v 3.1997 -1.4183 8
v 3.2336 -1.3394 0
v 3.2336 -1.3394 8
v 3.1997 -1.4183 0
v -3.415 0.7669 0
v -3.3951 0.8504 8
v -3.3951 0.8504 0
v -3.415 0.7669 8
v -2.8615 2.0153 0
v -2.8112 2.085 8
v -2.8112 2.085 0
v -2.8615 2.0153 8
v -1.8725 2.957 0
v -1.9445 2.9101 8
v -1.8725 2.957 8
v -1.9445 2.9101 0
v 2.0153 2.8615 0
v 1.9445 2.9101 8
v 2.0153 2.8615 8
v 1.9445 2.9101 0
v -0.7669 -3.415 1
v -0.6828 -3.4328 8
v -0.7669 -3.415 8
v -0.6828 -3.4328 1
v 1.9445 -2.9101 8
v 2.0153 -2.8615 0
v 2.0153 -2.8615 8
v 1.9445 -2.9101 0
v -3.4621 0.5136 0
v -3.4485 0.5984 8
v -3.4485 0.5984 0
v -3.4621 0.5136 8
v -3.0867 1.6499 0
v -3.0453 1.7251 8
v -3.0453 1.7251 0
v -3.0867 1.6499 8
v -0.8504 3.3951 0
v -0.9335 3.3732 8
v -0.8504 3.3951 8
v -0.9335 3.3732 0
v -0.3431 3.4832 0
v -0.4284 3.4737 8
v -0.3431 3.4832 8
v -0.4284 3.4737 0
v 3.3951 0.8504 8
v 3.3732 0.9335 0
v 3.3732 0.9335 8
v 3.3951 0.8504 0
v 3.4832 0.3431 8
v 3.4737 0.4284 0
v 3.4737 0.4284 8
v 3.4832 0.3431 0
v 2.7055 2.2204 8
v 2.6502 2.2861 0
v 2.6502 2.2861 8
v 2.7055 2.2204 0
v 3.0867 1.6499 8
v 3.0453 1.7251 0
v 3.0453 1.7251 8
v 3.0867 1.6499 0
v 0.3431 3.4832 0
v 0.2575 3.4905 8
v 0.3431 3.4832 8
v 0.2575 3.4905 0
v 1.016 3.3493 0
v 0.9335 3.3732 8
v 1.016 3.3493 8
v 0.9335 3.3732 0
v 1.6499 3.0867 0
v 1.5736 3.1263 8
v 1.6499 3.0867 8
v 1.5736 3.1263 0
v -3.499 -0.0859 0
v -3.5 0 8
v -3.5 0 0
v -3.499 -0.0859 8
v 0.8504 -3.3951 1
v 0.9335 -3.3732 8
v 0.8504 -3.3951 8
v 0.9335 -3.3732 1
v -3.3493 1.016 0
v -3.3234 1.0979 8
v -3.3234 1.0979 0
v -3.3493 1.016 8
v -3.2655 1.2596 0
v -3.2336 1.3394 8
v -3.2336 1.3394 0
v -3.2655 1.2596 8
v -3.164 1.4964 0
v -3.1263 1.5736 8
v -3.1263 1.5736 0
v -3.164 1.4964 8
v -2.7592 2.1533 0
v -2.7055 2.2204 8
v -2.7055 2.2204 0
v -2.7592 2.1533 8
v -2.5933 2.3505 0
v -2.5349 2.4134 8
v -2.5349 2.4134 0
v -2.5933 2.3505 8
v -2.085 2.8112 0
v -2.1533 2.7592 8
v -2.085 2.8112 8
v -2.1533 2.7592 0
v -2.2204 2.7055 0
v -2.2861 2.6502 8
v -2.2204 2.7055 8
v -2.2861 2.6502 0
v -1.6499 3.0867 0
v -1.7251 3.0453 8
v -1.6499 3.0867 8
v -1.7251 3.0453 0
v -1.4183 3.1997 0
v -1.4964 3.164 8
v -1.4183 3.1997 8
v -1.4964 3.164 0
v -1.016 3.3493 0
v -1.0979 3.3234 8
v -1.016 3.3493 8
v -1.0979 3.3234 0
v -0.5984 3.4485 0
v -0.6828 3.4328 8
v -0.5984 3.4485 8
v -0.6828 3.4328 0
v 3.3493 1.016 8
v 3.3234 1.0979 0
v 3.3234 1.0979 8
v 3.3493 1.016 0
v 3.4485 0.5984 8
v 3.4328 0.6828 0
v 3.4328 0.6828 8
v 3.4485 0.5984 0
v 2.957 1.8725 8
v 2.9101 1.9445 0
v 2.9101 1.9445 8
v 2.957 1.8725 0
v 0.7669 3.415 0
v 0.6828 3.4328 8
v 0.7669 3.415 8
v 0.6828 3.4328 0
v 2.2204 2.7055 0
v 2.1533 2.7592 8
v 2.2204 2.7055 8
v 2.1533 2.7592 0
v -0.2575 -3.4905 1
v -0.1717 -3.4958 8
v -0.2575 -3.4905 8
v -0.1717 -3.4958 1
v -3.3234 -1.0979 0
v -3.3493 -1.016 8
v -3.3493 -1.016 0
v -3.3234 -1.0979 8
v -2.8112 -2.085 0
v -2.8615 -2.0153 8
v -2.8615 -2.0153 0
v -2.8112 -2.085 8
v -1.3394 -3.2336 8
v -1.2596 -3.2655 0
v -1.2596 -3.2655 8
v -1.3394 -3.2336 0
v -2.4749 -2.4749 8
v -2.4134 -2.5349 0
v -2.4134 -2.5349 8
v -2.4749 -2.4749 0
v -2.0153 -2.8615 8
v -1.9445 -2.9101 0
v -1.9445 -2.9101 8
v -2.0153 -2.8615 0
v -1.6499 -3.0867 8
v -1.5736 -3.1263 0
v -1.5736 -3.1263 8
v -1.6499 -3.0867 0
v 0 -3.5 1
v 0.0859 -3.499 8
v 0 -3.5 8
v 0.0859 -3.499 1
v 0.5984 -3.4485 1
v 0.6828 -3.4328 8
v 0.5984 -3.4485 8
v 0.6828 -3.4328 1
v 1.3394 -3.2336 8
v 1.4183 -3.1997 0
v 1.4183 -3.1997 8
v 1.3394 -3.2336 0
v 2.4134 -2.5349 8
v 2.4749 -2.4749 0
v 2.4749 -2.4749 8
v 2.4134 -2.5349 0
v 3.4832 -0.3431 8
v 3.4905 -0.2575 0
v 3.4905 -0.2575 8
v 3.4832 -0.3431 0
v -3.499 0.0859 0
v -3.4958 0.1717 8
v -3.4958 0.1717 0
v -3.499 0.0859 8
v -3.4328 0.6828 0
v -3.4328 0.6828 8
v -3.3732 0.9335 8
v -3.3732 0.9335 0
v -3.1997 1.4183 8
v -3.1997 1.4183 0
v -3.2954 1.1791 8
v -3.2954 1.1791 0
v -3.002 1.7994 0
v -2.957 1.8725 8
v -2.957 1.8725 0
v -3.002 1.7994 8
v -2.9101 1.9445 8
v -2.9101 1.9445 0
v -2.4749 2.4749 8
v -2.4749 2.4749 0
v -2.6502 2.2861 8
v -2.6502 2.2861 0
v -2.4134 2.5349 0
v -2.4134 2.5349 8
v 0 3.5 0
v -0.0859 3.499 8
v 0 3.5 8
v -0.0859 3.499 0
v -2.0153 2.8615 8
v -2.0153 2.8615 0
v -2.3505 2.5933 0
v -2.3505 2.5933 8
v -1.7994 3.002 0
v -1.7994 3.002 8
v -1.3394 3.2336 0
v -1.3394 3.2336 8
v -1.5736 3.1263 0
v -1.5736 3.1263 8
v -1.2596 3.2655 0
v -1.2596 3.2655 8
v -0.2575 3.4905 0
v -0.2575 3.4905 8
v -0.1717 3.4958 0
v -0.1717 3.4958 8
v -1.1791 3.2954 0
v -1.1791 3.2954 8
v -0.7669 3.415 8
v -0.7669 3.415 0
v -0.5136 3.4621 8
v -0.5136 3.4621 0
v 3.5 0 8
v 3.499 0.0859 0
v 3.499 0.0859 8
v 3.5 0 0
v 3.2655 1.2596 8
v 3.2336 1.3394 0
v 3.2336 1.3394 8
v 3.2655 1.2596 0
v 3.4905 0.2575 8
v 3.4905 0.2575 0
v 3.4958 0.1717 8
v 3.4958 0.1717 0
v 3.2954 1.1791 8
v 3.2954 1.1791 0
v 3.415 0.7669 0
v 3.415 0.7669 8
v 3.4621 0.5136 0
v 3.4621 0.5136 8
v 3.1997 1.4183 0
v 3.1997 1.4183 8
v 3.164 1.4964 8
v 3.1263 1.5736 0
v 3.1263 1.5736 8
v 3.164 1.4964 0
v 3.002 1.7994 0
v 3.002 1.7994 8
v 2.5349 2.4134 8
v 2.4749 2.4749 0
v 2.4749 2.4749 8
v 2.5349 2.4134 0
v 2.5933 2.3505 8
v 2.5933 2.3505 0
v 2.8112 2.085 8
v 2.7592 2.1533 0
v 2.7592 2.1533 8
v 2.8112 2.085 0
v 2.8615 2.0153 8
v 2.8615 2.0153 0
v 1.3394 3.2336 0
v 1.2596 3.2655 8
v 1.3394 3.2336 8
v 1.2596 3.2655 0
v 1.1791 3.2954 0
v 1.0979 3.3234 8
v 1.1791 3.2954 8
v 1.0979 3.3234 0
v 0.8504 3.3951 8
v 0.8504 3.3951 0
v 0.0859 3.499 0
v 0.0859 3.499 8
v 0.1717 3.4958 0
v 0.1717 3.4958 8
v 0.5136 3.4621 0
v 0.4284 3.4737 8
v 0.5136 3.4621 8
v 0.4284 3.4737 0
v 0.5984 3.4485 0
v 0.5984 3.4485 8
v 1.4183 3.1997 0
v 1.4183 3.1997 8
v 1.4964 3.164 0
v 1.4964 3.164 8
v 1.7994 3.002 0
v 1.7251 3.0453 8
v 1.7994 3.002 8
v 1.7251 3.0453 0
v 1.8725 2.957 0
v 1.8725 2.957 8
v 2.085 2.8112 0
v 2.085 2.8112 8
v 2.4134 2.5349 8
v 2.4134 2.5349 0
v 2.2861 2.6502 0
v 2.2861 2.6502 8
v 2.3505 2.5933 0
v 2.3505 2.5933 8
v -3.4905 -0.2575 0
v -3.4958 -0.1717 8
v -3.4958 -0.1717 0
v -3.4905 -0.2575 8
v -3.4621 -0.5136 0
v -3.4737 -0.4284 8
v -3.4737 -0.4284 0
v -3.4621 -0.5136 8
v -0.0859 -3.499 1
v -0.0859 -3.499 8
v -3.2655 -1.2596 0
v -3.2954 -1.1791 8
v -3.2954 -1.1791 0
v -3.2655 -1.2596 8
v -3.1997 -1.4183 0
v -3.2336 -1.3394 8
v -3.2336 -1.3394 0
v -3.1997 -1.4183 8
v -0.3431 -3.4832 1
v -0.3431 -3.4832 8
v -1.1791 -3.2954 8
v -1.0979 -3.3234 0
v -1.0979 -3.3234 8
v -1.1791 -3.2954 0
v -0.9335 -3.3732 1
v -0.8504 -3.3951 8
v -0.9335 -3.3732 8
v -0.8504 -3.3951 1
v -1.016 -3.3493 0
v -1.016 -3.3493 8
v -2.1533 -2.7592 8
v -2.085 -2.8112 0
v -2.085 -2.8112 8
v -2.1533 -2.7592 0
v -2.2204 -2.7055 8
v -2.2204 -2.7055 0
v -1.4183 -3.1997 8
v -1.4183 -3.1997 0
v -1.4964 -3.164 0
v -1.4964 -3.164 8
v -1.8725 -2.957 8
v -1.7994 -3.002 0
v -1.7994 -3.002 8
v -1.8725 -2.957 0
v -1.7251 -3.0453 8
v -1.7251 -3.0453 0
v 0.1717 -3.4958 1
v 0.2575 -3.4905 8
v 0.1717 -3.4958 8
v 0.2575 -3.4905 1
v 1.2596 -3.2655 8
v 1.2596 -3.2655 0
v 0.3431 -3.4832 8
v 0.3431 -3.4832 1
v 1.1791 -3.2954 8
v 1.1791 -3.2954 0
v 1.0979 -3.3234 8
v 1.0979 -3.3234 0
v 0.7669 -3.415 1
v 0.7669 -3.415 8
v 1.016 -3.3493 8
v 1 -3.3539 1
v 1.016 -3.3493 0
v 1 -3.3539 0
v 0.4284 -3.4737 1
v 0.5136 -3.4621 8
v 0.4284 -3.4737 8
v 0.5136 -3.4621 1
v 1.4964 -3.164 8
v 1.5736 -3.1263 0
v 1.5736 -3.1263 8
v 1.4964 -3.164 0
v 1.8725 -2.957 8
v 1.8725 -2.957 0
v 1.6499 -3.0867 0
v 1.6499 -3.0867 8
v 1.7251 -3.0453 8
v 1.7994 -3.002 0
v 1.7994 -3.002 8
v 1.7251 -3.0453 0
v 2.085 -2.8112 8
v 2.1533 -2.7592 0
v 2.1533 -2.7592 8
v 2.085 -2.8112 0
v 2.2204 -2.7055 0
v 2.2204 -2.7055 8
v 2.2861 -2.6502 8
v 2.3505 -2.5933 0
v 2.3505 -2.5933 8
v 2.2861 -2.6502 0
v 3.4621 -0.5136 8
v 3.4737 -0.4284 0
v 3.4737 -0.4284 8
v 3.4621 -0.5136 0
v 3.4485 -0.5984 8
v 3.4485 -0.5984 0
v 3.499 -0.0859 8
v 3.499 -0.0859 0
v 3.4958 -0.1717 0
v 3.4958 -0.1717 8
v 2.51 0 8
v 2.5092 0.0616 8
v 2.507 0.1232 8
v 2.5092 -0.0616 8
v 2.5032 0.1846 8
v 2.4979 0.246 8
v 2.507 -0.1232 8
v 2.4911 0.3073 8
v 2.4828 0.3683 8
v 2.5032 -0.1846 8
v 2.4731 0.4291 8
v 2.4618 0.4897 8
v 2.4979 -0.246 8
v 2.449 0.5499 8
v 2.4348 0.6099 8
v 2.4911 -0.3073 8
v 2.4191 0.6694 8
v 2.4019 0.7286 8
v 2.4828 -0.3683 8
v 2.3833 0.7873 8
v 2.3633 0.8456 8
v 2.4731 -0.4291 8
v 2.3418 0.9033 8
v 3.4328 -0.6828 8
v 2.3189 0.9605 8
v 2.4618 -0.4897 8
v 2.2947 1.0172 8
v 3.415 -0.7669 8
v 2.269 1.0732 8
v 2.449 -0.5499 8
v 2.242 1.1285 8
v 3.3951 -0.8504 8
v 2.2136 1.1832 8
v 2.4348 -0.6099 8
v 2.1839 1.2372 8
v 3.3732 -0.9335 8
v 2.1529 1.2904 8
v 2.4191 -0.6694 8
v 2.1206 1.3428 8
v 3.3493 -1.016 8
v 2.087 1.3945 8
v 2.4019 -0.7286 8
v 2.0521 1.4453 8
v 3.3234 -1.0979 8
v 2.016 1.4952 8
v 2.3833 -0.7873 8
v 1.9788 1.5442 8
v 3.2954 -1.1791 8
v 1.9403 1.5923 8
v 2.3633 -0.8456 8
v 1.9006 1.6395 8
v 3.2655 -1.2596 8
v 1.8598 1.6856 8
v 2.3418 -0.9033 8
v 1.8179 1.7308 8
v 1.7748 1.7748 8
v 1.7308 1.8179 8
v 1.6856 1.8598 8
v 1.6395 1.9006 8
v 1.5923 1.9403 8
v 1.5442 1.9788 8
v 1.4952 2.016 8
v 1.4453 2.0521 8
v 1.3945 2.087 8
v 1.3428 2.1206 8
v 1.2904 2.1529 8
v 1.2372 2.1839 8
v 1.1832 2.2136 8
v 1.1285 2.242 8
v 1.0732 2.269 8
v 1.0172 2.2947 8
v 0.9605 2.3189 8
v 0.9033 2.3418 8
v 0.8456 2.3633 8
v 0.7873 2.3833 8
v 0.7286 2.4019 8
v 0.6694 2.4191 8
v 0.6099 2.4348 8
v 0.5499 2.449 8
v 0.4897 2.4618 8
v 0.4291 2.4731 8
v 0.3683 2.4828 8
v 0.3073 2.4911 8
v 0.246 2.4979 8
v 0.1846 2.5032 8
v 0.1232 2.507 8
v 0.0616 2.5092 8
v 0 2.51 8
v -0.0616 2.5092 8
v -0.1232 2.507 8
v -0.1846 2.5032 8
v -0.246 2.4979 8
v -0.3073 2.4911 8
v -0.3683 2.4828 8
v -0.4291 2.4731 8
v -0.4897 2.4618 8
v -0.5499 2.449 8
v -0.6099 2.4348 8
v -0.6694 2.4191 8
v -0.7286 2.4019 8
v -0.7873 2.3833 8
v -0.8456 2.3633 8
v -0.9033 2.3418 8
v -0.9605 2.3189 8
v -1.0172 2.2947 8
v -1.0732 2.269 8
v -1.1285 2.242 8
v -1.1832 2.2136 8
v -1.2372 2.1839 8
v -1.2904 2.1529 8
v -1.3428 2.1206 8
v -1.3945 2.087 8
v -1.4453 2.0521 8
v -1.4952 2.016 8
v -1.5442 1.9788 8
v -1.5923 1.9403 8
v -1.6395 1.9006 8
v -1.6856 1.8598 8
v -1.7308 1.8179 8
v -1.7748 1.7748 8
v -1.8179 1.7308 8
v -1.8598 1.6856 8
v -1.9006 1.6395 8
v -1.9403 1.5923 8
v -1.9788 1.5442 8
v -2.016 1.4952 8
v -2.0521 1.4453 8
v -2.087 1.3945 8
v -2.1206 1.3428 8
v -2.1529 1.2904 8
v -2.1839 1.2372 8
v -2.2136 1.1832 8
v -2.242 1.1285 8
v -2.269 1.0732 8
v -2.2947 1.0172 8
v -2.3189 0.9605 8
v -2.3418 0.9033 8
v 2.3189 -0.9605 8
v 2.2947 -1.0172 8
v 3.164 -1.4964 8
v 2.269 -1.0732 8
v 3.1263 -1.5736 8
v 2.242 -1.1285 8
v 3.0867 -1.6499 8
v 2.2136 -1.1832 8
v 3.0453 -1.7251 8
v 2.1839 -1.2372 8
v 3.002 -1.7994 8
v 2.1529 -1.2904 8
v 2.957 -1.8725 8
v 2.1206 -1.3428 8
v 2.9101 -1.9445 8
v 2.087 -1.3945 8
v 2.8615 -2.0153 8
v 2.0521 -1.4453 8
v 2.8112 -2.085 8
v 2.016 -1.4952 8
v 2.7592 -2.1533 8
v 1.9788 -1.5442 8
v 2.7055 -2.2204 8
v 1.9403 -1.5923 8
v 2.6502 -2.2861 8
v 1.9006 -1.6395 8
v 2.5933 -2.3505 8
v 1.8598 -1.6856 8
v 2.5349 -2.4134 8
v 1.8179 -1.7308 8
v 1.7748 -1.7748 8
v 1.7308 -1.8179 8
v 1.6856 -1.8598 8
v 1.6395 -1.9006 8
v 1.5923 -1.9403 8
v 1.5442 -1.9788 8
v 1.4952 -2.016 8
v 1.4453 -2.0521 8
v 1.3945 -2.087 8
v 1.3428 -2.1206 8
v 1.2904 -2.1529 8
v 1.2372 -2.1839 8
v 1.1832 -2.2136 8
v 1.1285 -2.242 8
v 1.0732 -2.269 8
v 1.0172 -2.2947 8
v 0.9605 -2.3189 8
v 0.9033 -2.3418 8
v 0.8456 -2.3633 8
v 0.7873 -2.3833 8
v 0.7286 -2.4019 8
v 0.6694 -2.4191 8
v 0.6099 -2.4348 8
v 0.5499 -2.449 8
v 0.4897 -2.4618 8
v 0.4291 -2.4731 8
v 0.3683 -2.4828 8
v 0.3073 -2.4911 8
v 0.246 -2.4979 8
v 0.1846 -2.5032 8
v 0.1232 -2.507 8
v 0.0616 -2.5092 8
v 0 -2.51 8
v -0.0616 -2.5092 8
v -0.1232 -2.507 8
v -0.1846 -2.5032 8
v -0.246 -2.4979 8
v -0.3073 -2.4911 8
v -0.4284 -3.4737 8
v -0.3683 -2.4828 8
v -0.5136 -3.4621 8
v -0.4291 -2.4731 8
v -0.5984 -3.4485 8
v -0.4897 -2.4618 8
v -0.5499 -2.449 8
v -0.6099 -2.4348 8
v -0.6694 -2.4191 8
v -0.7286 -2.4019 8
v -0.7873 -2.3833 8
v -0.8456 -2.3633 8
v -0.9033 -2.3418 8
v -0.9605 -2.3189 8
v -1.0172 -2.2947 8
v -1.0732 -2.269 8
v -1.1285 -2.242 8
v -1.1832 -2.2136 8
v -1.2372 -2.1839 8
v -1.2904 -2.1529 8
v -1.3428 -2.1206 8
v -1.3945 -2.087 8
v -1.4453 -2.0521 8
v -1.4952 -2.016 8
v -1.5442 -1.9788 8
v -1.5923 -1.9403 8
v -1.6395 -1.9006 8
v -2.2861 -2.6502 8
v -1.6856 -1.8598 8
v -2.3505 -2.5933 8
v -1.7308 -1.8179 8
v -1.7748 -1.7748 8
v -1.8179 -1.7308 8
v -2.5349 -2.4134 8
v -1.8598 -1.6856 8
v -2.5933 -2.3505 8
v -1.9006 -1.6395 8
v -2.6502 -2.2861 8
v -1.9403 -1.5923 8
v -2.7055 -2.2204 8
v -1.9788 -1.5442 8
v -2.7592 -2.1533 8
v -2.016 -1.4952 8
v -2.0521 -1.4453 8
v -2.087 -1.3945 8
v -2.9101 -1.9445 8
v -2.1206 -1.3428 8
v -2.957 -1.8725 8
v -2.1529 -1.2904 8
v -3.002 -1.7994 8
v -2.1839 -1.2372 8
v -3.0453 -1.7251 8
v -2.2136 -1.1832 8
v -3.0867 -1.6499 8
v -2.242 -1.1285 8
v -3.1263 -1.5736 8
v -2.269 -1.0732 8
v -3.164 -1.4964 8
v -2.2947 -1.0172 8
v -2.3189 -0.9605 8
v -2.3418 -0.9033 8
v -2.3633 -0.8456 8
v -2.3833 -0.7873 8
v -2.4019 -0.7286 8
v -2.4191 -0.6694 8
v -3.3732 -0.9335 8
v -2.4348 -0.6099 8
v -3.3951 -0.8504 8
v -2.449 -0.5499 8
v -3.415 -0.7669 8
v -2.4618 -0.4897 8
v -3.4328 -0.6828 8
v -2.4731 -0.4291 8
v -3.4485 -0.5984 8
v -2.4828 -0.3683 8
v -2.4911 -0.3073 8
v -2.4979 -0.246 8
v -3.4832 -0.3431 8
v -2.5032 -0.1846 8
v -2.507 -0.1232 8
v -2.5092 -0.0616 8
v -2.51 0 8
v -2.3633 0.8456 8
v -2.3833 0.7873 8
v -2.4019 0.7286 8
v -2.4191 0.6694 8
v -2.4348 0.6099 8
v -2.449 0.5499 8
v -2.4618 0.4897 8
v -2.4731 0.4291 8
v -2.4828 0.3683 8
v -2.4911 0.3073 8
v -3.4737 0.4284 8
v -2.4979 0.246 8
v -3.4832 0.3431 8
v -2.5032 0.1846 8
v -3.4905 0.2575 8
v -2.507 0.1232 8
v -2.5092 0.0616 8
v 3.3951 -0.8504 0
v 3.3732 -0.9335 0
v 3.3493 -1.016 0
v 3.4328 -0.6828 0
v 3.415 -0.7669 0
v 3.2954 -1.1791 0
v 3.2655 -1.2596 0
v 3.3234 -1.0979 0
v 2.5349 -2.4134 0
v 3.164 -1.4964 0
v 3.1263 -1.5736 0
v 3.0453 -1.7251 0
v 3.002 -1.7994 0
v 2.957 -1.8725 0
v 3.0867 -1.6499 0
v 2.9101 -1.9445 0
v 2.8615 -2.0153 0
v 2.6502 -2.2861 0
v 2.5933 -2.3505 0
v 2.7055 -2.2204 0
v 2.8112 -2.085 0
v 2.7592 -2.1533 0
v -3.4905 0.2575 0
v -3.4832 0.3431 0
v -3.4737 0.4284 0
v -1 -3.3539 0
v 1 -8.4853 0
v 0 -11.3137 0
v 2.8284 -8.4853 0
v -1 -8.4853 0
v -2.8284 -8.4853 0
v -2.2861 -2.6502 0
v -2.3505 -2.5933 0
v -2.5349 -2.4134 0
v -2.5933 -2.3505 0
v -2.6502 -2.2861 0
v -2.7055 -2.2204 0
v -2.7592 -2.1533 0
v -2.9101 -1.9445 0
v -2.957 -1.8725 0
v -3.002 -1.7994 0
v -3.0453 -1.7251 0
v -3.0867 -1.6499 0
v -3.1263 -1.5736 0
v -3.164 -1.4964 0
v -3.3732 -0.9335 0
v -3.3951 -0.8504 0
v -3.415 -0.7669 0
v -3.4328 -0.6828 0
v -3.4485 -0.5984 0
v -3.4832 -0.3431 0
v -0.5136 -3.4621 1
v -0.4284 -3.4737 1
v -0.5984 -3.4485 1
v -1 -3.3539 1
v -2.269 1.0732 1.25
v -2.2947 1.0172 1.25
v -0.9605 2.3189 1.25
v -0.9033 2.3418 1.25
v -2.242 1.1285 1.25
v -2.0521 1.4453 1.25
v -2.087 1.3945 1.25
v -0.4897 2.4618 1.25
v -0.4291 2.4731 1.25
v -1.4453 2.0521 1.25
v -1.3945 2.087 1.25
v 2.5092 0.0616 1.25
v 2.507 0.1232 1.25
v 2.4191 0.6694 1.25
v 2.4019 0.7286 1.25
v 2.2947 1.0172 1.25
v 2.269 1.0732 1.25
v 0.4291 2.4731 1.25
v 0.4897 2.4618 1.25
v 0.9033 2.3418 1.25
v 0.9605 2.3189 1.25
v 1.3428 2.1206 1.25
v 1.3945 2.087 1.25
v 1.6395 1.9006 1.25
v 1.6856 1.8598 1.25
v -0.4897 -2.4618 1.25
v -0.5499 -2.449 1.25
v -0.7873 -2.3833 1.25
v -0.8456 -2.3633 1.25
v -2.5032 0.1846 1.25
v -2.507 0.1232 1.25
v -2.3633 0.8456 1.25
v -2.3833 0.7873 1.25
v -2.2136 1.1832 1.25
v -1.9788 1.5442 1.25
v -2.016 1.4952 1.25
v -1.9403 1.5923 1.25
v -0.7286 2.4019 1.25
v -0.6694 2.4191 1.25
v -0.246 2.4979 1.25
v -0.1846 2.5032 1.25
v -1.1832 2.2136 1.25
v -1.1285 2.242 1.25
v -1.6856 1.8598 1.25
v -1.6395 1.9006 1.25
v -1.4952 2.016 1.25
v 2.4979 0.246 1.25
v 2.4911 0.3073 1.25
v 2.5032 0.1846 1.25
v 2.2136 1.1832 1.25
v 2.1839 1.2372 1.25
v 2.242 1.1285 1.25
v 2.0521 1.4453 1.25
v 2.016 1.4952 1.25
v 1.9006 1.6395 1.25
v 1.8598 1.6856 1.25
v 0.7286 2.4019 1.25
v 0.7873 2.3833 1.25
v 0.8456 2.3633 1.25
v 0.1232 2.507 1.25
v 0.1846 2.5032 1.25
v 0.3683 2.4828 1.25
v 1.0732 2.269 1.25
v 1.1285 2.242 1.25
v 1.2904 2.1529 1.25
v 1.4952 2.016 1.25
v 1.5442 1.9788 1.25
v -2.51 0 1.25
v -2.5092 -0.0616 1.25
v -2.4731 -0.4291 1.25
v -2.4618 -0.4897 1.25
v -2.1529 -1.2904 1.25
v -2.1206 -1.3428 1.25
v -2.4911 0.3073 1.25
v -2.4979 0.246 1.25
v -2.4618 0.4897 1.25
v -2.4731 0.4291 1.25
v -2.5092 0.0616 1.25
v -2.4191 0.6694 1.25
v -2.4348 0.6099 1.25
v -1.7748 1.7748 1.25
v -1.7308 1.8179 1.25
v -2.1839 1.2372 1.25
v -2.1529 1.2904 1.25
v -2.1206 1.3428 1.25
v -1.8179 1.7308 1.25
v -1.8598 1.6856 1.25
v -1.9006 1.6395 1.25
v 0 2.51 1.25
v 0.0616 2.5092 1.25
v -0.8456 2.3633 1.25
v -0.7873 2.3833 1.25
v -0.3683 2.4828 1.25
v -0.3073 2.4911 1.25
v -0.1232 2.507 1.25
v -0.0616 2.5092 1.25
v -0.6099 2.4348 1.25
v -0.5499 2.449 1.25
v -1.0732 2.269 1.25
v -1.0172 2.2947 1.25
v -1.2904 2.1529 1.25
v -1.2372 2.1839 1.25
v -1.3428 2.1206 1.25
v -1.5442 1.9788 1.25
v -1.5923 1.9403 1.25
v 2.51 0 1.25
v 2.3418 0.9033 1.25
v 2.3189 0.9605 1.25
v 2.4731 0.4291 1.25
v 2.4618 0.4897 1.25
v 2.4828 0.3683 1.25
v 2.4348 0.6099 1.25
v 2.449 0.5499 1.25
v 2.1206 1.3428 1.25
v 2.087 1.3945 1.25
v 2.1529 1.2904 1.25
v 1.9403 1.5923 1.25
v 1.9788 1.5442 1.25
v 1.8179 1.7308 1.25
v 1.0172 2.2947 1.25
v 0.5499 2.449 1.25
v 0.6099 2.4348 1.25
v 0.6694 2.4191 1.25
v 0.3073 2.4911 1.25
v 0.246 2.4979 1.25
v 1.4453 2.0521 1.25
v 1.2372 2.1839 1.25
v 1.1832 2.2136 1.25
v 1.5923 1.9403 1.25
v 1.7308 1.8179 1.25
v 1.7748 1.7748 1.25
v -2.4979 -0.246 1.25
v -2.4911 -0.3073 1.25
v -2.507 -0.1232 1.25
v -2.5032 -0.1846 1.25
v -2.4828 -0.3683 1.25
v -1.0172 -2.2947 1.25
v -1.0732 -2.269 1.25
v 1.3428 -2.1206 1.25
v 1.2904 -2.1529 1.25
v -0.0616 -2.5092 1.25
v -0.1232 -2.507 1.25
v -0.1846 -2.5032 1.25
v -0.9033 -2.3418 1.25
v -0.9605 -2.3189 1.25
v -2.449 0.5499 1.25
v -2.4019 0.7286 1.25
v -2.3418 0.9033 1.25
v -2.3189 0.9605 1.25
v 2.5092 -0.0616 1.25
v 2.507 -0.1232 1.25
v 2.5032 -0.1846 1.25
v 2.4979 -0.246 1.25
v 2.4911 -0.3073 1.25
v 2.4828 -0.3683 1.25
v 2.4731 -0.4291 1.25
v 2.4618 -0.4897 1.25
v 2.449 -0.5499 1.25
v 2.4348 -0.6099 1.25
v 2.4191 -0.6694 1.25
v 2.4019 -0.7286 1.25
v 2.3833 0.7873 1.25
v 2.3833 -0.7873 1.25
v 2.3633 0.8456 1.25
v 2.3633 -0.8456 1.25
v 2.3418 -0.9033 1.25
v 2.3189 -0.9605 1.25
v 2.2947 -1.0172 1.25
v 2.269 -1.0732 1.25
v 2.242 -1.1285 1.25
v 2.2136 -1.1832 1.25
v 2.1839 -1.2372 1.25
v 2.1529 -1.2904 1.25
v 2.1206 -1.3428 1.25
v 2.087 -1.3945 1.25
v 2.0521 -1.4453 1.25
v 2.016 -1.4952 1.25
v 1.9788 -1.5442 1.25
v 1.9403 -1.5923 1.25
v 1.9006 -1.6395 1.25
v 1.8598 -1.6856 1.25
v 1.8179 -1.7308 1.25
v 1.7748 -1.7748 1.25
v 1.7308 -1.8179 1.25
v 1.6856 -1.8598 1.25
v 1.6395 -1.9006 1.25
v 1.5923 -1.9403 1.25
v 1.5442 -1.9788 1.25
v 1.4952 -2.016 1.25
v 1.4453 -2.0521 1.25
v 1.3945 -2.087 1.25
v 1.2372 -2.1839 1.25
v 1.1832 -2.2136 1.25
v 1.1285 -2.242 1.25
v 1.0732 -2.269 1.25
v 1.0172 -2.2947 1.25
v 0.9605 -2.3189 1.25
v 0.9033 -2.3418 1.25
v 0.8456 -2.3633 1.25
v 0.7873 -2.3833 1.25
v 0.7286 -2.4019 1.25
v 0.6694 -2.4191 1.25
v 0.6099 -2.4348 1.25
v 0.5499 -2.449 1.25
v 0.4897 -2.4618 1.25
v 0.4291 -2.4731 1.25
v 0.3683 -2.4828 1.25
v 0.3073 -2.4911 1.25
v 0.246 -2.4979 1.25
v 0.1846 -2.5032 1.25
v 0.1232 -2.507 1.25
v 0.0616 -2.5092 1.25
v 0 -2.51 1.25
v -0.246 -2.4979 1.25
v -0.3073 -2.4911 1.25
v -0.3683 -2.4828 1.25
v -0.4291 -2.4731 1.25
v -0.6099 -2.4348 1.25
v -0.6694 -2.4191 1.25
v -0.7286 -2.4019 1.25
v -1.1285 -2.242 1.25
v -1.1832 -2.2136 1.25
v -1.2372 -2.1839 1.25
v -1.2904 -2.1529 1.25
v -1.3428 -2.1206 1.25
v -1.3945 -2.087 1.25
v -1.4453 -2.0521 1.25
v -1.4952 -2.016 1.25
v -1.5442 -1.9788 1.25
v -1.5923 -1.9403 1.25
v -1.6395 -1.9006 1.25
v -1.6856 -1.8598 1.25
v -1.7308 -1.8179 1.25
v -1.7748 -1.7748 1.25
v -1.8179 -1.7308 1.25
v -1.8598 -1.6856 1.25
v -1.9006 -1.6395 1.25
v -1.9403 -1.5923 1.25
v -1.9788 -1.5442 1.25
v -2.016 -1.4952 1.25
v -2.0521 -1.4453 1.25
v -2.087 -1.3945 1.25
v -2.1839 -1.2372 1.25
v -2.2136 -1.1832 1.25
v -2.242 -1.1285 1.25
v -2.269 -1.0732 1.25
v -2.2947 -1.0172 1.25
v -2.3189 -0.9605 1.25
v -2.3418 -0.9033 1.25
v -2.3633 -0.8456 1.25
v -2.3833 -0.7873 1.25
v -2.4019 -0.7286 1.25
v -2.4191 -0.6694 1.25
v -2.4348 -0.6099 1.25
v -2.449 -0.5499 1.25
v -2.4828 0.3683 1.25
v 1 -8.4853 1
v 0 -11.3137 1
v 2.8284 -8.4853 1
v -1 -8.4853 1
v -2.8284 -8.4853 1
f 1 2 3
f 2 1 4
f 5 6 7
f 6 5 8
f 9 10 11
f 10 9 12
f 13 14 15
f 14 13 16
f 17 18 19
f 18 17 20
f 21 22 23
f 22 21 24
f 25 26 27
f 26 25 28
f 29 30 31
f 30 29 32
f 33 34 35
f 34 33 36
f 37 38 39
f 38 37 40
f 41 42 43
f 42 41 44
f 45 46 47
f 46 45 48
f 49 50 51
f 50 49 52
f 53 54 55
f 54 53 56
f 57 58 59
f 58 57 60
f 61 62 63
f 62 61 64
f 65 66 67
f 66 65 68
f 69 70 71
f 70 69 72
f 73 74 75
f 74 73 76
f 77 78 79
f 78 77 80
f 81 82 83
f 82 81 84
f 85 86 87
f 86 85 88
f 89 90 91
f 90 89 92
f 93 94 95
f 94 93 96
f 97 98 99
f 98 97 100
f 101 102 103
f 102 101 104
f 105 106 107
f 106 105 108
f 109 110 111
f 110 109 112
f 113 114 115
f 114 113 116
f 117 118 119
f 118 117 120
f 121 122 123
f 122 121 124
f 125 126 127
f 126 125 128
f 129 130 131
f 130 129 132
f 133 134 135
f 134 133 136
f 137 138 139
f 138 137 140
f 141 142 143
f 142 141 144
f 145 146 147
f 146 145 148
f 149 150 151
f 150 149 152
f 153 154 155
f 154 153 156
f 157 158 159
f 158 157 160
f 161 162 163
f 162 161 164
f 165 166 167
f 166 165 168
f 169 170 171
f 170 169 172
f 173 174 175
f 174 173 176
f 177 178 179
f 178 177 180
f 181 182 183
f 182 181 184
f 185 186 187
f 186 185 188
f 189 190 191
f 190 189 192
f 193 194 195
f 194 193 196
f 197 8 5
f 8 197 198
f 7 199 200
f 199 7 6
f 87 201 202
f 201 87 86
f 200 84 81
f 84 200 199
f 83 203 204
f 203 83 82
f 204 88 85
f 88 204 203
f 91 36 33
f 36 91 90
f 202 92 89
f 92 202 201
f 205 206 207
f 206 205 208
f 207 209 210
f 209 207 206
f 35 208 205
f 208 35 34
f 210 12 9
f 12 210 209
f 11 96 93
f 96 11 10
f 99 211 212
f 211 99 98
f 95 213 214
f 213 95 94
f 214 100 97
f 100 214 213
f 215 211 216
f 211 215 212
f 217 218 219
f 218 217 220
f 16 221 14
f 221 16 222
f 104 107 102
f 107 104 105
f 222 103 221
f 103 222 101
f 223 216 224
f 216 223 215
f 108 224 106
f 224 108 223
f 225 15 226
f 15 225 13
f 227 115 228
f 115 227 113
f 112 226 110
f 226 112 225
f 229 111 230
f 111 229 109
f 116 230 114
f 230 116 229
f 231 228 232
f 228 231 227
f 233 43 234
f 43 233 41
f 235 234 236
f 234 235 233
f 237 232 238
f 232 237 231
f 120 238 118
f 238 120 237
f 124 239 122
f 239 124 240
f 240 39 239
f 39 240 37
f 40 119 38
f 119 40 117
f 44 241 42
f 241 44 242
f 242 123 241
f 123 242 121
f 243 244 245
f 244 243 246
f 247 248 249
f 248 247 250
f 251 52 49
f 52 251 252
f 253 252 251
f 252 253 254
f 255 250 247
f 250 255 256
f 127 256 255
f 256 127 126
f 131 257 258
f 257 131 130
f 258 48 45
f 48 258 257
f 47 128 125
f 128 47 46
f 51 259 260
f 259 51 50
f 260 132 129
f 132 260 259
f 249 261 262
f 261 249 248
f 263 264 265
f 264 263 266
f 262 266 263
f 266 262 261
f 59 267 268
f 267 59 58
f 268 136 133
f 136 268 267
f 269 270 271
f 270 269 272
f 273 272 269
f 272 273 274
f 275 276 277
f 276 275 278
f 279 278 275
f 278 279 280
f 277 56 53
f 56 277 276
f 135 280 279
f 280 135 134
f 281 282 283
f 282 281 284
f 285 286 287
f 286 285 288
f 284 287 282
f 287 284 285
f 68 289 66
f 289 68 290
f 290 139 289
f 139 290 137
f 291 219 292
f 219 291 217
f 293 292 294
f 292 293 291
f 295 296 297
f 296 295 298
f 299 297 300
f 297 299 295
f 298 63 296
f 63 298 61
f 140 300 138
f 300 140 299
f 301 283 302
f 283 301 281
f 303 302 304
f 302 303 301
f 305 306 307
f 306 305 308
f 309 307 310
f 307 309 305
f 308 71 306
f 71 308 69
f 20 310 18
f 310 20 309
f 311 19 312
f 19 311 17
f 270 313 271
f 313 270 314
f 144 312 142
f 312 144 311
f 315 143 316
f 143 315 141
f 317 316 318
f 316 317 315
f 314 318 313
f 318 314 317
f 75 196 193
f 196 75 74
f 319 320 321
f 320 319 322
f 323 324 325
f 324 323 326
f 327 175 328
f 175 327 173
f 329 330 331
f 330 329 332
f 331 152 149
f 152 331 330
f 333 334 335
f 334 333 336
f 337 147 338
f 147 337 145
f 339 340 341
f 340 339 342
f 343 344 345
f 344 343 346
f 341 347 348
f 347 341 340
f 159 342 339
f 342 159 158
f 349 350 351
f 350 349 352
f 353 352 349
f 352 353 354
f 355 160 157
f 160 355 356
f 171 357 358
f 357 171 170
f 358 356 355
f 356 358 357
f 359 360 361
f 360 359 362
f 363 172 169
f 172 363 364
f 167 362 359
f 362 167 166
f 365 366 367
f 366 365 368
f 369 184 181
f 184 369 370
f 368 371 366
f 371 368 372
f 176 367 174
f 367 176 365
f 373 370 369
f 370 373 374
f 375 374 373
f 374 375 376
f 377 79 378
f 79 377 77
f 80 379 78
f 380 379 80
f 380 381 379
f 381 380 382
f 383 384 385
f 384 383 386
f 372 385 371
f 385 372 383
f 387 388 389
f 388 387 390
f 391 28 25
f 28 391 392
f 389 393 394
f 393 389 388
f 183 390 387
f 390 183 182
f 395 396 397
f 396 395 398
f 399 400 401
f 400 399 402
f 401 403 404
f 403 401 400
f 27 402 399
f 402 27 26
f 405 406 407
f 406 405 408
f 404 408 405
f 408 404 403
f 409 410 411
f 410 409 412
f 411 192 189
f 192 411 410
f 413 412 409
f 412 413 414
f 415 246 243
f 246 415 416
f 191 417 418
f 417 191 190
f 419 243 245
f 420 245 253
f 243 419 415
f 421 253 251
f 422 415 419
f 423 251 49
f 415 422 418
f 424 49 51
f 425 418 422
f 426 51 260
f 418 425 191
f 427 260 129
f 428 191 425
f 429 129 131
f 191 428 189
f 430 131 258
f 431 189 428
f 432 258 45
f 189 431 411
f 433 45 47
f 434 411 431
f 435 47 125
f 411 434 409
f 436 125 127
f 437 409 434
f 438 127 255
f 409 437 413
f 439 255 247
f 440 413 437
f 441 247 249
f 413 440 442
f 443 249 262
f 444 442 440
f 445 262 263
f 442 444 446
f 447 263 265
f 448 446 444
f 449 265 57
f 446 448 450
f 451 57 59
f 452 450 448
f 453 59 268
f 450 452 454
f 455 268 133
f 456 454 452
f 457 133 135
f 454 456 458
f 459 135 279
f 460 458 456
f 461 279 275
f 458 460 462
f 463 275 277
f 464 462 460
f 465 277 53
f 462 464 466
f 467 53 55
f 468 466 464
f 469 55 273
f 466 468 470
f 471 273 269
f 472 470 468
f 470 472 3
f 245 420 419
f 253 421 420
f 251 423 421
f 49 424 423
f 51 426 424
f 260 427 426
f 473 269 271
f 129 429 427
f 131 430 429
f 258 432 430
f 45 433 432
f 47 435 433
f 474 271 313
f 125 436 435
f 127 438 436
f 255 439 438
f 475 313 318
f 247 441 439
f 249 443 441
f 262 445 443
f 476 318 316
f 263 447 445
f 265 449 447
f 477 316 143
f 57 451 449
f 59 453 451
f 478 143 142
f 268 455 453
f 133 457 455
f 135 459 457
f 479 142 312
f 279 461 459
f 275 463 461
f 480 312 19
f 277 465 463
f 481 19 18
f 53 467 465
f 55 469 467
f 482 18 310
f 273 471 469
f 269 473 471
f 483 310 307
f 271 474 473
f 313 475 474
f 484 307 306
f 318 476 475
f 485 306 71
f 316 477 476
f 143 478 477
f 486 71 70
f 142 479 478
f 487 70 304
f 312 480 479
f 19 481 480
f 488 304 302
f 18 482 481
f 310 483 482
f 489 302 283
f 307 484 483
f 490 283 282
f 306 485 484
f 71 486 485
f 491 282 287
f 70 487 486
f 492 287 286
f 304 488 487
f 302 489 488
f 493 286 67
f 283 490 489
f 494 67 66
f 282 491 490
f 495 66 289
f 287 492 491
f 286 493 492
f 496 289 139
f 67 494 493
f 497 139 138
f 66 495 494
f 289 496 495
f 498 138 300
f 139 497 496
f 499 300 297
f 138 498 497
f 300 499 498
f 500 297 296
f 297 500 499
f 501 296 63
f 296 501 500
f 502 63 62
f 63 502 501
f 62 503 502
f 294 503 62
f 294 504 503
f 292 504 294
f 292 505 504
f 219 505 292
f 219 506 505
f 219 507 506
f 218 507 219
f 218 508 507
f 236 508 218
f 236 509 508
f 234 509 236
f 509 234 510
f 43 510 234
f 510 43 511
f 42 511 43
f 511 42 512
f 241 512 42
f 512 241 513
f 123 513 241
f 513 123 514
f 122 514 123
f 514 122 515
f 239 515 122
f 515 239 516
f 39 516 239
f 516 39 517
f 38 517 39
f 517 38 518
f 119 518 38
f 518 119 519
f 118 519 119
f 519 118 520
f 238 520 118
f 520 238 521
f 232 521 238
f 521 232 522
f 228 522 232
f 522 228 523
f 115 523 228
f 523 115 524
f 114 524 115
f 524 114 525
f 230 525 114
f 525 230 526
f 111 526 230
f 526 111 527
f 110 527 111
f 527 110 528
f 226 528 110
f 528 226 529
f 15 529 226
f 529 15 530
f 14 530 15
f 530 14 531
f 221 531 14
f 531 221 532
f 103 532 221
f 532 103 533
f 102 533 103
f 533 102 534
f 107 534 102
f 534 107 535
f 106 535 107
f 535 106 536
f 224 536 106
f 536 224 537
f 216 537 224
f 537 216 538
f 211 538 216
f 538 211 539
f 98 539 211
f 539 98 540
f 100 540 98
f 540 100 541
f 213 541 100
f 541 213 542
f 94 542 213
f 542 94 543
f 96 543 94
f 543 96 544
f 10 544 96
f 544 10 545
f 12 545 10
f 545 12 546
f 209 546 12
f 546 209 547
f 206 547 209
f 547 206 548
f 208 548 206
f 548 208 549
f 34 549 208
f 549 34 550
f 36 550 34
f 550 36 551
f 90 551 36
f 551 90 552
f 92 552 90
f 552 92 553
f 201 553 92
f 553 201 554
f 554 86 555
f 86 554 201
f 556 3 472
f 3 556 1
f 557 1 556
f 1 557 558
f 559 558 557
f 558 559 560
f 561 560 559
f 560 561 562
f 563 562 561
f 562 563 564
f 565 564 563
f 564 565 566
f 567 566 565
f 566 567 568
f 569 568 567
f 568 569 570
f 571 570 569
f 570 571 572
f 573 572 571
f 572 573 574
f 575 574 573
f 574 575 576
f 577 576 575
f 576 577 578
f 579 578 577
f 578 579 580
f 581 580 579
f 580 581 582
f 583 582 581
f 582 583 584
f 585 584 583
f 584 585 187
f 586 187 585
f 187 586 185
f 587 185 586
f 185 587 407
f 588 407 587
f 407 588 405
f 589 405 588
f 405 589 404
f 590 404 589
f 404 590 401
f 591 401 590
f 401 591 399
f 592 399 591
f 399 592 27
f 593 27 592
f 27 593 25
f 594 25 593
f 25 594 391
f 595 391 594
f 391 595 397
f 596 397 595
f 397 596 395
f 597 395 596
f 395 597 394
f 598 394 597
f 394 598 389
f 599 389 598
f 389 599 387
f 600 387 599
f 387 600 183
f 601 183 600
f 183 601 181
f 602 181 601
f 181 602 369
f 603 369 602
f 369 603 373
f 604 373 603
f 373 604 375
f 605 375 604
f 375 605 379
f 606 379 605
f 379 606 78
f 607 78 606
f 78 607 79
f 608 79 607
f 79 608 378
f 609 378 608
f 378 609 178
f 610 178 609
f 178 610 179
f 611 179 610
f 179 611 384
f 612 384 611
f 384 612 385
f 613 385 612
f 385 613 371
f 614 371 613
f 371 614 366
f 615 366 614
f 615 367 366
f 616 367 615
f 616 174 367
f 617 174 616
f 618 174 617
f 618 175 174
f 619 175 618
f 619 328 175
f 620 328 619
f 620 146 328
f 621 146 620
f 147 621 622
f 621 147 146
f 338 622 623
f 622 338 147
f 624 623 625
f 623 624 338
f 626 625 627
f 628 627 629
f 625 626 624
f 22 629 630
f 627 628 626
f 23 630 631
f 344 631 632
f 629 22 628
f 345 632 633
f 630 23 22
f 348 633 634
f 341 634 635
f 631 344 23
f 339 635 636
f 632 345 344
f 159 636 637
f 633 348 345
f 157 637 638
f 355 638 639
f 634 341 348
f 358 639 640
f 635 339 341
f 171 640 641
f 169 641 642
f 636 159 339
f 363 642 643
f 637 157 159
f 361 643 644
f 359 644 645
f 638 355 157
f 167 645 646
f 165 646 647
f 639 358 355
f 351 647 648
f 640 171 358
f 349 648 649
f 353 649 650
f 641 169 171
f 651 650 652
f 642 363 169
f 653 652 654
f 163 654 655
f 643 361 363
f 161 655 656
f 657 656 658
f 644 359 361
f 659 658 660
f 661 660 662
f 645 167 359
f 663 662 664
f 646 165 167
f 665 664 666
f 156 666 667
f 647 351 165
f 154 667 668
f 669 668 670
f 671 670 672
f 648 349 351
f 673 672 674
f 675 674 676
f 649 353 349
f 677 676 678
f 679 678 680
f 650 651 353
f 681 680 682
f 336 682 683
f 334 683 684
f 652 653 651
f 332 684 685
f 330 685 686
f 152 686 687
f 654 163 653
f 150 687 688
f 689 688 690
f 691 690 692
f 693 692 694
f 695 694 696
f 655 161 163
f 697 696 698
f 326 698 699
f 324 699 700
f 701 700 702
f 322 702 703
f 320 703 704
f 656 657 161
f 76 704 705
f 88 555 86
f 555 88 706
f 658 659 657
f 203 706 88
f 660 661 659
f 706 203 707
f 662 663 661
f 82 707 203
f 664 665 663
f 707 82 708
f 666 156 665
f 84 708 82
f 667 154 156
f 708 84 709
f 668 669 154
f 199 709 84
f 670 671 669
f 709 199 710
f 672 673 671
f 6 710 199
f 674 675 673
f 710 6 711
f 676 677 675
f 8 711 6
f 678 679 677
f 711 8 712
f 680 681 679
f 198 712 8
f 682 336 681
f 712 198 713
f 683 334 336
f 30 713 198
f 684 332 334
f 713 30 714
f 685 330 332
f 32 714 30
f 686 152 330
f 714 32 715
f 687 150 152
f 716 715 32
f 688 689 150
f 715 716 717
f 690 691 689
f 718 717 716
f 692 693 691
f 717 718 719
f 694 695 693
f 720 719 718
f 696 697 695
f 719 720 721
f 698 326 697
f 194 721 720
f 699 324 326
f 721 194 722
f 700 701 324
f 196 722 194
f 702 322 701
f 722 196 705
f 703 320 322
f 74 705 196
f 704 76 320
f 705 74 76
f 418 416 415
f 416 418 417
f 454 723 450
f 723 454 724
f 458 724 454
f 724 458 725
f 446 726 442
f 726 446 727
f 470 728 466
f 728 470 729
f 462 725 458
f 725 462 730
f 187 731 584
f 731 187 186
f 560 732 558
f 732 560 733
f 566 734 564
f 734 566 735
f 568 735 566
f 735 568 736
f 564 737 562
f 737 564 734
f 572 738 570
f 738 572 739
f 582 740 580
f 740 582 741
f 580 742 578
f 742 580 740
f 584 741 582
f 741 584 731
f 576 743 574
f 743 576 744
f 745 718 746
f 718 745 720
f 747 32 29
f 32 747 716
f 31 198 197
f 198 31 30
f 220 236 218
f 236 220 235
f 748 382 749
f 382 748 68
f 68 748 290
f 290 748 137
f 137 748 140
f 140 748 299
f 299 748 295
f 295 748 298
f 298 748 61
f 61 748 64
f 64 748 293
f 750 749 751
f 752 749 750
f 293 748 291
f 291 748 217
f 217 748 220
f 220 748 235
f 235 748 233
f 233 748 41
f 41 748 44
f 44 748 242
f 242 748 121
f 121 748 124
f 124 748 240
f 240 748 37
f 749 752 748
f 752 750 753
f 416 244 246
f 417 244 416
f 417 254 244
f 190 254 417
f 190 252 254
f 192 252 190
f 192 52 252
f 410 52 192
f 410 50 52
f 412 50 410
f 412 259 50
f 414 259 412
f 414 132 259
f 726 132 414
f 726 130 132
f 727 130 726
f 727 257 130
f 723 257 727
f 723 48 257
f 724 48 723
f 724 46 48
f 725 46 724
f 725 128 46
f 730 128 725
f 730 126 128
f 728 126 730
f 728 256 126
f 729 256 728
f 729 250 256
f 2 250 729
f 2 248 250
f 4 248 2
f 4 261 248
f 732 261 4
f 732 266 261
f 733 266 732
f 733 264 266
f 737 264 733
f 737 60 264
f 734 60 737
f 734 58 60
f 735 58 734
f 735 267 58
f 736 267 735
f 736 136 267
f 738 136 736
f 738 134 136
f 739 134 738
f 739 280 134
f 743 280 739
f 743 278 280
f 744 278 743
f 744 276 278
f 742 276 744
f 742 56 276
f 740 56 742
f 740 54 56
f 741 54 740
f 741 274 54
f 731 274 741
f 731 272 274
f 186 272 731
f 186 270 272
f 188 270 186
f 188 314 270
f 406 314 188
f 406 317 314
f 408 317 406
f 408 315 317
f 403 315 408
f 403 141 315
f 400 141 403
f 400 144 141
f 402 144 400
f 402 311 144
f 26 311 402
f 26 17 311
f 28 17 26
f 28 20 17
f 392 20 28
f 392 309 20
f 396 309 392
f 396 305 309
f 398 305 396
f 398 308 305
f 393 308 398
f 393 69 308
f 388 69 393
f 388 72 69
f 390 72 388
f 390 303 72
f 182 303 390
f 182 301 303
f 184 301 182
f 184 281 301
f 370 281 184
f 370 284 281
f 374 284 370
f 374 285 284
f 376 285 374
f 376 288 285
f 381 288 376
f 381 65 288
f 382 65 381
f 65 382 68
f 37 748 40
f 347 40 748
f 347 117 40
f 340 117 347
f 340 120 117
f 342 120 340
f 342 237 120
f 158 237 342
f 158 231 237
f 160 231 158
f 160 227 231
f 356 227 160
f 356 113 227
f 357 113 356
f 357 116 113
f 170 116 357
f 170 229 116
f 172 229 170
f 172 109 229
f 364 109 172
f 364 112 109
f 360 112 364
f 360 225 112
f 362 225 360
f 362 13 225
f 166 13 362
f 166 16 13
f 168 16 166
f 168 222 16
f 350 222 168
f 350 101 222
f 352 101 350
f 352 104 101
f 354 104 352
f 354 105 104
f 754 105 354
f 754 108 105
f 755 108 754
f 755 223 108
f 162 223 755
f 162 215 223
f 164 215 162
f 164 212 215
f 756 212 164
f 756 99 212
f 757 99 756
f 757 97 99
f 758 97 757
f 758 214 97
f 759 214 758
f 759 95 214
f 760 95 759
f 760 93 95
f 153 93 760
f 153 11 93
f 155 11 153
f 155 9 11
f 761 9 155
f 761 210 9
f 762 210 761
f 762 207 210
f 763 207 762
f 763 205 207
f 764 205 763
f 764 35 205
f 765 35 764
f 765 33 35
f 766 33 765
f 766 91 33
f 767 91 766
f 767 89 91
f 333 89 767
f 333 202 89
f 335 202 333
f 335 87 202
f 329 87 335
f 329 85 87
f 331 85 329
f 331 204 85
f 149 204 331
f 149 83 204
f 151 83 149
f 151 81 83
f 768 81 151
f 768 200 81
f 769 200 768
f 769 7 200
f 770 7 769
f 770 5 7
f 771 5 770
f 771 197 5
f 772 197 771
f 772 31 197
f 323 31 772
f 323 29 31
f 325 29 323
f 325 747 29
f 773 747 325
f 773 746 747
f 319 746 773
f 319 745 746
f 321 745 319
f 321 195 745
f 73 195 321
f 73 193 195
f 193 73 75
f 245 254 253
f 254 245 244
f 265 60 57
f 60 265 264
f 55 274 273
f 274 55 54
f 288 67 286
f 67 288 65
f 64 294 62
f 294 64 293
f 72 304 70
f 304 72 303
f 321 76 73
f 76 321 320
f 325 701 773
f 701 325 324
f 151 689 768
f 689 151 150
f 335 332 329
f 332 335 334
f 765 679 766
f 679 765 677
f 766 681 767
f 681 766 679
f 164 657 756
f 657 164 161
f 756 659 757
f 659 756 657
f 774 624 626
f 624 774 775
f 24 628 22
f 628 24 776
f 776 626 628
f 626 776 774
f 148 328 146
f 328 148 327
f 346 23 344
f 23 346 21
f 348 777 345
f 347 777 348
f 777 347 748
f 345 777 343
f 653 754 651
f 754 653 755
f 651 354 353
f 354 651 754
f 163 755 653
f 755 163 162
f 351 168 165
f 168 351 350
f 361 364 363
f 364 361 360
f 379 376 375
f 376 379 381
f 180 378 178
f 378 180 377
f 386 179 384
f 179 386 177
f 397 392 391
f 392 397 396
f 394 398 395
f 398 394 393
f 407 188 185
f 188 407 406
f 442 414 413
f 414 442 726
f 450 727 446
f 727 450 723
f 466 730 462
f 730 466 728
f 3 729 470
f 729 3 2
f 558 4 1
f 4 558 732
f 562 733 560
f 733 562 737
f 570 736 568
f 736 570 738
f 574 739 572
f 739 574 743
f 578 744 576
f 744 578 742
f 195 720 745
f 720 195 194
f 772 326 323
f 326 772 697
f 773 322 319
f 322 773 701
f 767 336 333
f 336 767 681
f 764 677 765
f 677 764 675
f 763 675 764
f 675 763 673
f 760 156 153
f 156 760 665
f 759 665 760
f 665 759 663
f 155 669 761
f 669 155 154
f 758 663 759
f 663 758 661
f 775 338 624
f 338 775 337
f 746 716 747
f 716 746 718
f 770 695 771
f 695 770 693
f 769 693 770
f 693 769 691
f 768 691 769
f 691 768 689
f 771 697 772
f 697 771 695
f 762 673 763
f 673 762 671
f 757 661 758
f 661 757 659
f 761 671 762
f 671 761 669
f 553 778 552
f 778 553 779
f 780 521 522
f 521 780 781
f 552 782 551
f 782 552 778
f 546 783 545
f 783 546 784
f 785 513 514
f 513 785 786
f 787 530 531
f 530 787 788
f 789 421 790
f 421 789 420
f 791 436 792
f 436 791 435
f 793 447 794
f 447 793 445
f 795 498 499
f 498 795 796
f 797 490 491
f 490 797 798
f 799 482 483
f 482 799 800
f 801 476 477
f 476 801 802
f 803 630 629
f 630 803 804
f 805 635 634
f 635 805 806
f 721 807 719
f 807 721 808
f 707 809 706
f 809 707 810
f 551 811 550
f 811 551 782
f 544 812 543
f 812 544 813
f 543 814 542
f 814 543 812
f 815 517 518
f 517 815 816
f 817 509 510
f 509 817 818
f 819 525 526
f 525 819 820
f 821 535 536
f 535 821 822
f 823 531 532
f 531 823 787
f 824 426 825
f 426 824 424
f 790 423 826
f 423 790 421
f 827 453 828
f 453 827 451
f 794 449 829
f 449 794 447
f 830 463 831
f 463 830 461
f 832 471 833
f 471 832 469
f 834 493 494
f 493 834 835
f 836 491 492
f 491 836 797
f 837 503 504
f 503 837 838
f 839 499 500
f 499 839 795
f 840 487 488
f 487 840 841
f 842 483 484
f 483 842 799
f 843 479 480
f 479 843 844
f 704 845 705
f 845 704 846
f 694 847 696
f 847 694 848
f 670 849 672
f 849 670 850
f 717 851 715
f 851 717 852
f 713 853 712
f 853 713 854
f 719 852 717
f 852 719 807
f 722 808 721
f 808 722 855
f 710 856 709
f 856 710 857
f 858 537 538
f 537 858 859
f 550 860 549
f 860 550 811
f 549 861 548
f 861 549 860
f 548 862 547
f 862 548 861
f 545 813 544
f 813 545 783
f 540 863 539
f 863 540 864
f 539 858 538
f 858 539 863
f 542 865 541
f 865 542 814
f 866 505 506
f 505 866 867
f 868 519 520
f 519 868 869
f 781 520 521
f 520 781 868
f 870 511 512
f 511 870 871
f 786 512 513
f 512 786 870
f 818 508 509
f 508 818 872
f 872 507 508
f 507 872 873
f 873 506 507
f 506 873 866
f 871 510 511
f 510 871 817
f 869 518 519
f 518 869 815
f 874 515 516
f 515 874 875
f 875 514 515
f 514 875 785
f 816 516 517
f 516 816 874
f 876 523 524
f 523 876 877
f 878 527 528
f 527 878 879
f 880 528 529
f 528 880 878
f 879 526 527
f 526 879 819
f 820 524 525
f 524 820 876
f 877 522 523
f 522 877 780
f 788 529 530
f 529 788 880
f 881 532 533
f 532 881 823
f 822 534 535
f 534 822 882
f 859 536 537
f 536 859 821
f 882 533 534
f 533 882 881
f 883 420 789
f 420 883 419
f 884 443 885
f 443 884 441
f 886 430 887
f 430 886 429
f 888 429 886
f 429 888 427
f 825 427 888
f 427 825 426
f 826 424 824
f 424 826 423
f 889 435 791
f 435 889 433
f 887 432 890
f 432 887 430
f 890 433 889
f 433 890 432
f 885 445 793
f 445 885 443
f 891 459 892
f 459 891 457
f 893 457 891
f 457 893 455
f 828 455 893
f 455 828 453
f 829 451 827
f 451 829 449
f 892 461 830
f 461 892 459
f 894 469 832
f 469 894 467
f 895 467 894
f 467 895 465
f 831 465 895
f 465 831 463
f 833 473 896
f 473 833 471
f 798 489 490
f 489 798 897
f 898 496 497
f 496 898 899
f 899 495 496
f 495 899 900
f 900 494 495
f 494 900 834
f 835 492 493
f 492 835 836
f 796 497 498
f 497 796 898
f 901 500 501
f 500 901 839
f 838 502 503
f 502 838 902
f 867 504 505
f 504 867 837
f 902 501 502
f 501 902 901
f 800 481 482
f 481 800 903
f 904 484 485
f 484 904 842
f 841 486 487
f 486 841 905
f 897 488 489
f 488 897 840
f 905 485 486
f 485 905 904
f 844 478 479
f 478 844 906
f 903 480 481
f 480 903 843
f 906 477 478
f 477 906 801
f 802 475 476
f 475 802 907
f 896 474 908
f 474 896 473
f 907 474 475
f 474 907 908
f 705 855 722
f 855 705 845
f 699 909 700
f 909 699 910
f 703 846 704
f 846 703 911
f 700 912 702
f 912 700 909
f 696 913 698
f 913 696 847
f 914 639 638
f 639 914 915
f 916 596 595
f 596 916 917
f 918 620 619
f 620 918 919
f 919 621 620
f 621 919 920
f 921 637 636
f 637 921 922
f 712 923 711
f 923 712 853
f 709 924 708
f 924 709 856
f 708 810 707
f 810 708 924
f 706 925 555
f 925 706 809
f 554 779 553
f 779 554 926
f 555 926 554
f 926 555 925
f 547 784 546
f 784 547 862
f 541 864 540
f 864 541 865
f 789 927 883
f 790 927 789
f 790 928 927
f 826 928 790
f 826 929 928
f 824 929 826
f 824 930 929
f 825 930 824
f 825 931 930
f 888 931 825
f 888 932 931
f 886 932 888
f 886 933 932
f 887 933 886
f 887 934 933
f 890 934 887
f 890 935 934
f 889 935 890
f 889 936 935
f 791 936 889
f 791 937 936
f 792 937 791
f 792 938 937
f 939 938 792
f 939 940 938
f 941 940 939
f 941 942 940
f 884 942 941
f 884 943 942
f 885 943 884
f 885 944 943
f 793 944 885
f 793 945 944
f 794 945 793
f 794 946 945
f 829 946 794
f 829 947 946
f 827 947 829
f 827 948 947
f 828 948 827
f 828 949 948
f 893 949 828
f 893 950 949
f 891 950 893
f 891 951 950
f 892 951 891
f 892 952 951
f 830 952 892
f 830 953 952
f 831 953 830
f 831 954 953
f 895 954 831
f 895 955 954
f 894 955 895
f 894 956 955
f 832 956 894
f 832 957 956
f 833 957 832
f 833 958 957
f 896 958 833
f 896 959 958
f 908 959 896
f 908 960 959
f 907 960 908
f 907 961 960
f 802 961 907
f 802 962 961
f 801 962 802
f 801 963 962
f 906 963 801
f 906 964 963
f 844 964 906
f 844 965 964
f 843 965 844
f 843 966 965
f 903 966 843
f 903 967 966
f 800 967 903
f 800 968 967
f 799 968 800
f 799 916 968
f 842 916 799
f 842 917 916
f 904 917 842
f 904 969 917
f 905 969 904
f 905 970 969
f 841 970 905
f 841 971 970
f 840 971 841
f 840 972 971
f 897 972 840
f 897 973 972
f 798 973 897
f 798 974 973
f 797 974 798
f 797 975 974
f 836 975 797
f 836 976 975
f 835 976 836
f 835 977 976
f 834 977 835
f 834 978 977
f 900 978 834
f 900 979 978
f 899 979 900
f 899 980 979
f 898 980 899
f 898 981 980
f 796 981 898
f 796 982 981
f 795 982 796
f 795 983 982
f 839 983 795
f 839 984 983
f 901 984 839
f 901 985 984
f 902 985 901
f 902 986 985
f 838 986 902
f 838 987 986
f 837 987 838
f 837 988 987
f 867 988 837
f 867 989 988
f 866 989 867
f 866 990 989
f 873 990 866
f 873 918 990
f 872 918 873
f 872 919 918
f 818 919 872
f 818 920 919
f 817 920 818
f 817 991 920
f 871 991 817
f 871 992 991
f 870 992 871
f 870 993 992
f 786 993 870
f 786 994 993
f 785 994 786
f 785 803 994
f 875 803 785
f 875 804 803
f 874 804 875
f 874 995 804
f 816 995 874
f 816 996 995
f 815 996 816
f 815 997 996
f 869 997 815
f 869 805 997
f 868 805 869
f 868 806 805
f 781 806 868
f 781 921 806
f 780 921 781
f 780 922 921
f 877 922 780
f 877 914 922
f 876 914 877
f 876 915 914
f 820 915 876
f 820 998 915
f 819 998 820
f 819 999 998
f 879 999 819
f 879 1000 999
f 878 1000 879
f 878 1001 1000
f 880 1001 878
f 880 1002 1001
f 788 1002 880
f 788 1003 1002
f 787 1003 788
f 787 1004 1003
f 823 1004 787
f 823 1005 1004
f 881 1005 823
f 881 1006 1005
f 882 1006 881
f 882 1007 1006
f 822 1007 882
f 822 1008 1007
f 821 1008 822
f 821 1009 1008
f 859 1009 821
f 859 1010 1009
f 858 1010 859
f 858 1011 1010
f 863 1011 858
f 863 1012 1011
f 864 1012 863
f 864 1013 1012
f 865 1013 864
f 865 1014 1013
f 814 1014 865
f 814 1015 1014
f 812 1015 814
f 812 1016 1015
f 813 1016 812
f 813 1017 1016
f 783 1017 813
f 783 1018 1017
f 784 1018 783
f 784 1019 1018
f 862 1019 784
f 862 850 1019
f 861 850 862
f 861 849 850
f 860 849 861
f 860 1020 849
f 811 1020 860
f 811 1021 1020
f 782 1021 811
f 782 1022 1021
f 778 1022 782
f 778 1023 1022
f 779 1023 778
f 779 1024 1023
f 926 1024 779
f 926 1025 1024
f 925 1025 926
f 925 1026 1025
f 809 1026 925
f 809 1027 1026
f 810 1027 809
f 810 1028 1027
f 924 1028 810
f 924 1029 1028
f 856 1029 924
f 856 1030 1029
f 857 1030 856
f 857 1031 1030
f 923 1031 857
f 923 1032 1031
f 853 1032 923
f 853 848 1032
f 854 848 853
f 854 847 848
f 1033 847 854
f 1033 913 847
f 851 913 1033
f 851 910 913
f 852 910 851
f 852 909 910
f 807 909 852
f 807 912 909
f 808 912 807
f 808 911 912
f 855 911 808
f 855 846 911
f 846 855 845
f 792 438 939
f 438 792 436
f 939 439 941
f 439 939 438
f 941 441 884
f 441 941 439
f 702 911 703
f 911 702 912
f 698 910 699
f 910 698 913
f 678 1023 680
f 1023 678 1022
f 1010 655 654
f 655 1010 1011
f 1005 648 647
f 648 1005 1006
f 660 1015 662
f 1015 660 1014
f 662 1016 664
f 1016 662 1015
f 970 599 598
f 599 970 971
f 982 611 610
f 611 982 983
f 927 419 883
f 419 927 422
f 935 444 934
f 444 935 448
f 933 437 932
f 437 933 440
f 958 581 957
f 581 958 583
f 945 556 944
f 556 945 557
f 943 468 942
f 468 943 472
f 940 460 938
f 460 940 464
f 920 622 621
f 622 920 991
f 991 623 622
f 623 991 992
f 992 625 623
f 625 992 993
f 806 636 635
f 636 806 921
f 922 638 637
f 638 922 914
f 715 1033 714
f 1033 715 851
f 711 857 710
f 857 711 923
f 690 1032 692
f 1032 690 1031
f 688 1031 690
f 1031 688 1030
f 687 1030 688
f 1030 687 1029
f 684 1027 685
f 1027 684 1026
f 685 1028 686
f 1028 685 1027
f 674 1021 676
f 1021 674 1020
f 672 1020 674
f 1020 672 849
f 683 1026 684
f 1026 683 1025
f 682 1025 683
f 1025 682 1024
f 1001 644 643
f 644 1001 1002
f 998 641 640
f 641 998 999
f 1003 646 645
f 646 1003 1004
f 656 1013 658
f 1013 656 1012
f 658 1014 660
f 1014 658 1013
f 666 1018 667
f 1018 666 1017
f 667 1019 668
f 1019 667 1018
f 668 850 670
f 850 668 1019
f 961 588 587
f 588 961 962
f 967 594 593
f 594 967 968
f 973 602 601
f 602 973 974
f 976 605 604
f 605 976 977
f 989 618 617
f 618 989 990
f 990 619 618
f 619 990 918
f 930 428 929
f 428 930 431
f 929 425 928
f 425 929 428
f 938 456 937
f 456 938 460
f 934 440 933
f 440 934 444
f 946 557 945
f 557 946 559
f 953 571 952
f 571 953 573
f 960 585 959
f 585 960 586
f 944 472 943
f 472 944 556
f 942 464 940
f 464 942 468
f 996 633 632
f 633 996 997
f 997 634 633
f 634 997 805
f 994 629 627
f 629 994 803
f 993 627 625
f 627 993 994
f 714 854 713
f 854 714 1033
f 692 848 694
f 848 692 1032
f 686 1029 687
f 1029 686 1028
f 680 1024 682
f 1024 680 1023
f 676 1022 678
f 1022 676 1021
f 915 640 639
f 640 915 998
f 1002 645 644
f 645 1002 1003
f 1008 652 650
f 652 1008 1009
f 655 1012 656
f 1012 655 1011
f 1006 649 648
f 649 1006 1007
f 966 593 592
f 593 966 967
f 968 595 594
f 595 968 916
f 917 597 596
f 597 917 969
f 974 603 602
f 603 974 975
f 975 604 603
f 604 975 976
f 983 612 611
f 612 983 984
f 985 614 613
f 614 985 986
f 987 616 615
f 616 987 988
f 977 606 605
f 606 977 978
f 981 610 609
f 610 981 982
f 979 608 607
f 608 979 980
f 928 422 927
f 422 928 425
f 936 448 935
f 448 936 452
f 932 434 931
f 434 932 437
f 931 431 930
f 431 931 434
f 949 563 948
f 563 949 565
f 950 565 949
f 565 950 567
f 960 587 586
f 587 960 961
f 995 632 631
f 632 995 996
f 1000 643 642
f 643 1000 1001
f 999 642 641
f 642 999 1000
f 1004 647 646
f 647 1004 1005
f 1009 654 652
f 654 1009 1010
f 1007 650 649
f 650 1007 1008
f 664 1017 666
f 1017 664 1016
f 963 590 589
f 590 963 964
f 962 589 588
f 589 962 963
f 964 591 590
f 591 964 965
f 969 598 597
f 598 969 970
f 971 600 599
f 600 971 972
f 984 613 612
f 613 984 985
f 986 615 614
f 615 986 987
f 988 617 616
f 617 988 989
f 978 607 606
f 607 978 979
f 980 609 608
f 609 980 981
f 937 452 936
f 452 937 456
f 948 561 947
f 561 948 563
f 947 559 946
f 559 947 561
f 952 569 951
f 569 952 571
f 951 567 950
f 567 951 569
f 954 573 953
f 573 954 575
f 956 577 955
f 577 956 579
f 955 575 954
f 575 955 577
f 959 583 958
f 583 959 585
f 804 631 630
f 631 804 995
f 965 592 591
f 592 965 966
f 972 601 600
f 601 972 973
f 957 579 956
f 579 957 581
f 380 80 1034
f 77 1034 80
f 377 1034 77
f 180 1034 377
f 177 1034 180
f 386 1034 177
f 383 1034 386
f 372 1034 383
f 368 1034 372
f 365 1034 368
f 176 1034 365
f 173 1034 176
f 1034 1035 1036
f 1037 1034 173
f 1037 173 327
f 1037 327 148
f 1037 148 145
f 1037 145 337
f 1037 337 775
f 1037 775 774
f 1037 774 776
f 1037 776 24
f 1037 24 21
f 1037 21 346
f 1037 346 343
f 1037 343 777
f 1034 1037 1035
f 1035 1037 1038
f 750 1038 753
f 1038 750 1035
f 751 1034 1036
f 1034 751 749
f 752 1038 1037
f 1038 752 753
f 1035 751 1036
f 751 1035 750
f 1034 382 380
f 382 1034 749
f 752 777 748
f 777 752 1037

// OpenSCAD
cs = 256;

module triangle(o_len, a_len, depth)
{
    linear_extrude(height=depth)
    {
        polygon(points=[[0,0],[a_len,0],[0,o_len]], paths=[[0,1,2]]);
    }
}

translate ([0, 0, 8]) rotate ([0, 180, 0]) {
    rotate([0, 0, 45]) translate([-8, -8, 7]) triangle(4,4,1);
    translate([-1, -9, 7]) cube([2, 8, 1]);


    difference () {
        cylinder(h=8, d=7, $fn=cs);
        cylinder(h=6.75, d=5.02, $fn=cs);
        //translate([-3.5, 0, 0]) cube([7,3.5,8]);
    }
}
